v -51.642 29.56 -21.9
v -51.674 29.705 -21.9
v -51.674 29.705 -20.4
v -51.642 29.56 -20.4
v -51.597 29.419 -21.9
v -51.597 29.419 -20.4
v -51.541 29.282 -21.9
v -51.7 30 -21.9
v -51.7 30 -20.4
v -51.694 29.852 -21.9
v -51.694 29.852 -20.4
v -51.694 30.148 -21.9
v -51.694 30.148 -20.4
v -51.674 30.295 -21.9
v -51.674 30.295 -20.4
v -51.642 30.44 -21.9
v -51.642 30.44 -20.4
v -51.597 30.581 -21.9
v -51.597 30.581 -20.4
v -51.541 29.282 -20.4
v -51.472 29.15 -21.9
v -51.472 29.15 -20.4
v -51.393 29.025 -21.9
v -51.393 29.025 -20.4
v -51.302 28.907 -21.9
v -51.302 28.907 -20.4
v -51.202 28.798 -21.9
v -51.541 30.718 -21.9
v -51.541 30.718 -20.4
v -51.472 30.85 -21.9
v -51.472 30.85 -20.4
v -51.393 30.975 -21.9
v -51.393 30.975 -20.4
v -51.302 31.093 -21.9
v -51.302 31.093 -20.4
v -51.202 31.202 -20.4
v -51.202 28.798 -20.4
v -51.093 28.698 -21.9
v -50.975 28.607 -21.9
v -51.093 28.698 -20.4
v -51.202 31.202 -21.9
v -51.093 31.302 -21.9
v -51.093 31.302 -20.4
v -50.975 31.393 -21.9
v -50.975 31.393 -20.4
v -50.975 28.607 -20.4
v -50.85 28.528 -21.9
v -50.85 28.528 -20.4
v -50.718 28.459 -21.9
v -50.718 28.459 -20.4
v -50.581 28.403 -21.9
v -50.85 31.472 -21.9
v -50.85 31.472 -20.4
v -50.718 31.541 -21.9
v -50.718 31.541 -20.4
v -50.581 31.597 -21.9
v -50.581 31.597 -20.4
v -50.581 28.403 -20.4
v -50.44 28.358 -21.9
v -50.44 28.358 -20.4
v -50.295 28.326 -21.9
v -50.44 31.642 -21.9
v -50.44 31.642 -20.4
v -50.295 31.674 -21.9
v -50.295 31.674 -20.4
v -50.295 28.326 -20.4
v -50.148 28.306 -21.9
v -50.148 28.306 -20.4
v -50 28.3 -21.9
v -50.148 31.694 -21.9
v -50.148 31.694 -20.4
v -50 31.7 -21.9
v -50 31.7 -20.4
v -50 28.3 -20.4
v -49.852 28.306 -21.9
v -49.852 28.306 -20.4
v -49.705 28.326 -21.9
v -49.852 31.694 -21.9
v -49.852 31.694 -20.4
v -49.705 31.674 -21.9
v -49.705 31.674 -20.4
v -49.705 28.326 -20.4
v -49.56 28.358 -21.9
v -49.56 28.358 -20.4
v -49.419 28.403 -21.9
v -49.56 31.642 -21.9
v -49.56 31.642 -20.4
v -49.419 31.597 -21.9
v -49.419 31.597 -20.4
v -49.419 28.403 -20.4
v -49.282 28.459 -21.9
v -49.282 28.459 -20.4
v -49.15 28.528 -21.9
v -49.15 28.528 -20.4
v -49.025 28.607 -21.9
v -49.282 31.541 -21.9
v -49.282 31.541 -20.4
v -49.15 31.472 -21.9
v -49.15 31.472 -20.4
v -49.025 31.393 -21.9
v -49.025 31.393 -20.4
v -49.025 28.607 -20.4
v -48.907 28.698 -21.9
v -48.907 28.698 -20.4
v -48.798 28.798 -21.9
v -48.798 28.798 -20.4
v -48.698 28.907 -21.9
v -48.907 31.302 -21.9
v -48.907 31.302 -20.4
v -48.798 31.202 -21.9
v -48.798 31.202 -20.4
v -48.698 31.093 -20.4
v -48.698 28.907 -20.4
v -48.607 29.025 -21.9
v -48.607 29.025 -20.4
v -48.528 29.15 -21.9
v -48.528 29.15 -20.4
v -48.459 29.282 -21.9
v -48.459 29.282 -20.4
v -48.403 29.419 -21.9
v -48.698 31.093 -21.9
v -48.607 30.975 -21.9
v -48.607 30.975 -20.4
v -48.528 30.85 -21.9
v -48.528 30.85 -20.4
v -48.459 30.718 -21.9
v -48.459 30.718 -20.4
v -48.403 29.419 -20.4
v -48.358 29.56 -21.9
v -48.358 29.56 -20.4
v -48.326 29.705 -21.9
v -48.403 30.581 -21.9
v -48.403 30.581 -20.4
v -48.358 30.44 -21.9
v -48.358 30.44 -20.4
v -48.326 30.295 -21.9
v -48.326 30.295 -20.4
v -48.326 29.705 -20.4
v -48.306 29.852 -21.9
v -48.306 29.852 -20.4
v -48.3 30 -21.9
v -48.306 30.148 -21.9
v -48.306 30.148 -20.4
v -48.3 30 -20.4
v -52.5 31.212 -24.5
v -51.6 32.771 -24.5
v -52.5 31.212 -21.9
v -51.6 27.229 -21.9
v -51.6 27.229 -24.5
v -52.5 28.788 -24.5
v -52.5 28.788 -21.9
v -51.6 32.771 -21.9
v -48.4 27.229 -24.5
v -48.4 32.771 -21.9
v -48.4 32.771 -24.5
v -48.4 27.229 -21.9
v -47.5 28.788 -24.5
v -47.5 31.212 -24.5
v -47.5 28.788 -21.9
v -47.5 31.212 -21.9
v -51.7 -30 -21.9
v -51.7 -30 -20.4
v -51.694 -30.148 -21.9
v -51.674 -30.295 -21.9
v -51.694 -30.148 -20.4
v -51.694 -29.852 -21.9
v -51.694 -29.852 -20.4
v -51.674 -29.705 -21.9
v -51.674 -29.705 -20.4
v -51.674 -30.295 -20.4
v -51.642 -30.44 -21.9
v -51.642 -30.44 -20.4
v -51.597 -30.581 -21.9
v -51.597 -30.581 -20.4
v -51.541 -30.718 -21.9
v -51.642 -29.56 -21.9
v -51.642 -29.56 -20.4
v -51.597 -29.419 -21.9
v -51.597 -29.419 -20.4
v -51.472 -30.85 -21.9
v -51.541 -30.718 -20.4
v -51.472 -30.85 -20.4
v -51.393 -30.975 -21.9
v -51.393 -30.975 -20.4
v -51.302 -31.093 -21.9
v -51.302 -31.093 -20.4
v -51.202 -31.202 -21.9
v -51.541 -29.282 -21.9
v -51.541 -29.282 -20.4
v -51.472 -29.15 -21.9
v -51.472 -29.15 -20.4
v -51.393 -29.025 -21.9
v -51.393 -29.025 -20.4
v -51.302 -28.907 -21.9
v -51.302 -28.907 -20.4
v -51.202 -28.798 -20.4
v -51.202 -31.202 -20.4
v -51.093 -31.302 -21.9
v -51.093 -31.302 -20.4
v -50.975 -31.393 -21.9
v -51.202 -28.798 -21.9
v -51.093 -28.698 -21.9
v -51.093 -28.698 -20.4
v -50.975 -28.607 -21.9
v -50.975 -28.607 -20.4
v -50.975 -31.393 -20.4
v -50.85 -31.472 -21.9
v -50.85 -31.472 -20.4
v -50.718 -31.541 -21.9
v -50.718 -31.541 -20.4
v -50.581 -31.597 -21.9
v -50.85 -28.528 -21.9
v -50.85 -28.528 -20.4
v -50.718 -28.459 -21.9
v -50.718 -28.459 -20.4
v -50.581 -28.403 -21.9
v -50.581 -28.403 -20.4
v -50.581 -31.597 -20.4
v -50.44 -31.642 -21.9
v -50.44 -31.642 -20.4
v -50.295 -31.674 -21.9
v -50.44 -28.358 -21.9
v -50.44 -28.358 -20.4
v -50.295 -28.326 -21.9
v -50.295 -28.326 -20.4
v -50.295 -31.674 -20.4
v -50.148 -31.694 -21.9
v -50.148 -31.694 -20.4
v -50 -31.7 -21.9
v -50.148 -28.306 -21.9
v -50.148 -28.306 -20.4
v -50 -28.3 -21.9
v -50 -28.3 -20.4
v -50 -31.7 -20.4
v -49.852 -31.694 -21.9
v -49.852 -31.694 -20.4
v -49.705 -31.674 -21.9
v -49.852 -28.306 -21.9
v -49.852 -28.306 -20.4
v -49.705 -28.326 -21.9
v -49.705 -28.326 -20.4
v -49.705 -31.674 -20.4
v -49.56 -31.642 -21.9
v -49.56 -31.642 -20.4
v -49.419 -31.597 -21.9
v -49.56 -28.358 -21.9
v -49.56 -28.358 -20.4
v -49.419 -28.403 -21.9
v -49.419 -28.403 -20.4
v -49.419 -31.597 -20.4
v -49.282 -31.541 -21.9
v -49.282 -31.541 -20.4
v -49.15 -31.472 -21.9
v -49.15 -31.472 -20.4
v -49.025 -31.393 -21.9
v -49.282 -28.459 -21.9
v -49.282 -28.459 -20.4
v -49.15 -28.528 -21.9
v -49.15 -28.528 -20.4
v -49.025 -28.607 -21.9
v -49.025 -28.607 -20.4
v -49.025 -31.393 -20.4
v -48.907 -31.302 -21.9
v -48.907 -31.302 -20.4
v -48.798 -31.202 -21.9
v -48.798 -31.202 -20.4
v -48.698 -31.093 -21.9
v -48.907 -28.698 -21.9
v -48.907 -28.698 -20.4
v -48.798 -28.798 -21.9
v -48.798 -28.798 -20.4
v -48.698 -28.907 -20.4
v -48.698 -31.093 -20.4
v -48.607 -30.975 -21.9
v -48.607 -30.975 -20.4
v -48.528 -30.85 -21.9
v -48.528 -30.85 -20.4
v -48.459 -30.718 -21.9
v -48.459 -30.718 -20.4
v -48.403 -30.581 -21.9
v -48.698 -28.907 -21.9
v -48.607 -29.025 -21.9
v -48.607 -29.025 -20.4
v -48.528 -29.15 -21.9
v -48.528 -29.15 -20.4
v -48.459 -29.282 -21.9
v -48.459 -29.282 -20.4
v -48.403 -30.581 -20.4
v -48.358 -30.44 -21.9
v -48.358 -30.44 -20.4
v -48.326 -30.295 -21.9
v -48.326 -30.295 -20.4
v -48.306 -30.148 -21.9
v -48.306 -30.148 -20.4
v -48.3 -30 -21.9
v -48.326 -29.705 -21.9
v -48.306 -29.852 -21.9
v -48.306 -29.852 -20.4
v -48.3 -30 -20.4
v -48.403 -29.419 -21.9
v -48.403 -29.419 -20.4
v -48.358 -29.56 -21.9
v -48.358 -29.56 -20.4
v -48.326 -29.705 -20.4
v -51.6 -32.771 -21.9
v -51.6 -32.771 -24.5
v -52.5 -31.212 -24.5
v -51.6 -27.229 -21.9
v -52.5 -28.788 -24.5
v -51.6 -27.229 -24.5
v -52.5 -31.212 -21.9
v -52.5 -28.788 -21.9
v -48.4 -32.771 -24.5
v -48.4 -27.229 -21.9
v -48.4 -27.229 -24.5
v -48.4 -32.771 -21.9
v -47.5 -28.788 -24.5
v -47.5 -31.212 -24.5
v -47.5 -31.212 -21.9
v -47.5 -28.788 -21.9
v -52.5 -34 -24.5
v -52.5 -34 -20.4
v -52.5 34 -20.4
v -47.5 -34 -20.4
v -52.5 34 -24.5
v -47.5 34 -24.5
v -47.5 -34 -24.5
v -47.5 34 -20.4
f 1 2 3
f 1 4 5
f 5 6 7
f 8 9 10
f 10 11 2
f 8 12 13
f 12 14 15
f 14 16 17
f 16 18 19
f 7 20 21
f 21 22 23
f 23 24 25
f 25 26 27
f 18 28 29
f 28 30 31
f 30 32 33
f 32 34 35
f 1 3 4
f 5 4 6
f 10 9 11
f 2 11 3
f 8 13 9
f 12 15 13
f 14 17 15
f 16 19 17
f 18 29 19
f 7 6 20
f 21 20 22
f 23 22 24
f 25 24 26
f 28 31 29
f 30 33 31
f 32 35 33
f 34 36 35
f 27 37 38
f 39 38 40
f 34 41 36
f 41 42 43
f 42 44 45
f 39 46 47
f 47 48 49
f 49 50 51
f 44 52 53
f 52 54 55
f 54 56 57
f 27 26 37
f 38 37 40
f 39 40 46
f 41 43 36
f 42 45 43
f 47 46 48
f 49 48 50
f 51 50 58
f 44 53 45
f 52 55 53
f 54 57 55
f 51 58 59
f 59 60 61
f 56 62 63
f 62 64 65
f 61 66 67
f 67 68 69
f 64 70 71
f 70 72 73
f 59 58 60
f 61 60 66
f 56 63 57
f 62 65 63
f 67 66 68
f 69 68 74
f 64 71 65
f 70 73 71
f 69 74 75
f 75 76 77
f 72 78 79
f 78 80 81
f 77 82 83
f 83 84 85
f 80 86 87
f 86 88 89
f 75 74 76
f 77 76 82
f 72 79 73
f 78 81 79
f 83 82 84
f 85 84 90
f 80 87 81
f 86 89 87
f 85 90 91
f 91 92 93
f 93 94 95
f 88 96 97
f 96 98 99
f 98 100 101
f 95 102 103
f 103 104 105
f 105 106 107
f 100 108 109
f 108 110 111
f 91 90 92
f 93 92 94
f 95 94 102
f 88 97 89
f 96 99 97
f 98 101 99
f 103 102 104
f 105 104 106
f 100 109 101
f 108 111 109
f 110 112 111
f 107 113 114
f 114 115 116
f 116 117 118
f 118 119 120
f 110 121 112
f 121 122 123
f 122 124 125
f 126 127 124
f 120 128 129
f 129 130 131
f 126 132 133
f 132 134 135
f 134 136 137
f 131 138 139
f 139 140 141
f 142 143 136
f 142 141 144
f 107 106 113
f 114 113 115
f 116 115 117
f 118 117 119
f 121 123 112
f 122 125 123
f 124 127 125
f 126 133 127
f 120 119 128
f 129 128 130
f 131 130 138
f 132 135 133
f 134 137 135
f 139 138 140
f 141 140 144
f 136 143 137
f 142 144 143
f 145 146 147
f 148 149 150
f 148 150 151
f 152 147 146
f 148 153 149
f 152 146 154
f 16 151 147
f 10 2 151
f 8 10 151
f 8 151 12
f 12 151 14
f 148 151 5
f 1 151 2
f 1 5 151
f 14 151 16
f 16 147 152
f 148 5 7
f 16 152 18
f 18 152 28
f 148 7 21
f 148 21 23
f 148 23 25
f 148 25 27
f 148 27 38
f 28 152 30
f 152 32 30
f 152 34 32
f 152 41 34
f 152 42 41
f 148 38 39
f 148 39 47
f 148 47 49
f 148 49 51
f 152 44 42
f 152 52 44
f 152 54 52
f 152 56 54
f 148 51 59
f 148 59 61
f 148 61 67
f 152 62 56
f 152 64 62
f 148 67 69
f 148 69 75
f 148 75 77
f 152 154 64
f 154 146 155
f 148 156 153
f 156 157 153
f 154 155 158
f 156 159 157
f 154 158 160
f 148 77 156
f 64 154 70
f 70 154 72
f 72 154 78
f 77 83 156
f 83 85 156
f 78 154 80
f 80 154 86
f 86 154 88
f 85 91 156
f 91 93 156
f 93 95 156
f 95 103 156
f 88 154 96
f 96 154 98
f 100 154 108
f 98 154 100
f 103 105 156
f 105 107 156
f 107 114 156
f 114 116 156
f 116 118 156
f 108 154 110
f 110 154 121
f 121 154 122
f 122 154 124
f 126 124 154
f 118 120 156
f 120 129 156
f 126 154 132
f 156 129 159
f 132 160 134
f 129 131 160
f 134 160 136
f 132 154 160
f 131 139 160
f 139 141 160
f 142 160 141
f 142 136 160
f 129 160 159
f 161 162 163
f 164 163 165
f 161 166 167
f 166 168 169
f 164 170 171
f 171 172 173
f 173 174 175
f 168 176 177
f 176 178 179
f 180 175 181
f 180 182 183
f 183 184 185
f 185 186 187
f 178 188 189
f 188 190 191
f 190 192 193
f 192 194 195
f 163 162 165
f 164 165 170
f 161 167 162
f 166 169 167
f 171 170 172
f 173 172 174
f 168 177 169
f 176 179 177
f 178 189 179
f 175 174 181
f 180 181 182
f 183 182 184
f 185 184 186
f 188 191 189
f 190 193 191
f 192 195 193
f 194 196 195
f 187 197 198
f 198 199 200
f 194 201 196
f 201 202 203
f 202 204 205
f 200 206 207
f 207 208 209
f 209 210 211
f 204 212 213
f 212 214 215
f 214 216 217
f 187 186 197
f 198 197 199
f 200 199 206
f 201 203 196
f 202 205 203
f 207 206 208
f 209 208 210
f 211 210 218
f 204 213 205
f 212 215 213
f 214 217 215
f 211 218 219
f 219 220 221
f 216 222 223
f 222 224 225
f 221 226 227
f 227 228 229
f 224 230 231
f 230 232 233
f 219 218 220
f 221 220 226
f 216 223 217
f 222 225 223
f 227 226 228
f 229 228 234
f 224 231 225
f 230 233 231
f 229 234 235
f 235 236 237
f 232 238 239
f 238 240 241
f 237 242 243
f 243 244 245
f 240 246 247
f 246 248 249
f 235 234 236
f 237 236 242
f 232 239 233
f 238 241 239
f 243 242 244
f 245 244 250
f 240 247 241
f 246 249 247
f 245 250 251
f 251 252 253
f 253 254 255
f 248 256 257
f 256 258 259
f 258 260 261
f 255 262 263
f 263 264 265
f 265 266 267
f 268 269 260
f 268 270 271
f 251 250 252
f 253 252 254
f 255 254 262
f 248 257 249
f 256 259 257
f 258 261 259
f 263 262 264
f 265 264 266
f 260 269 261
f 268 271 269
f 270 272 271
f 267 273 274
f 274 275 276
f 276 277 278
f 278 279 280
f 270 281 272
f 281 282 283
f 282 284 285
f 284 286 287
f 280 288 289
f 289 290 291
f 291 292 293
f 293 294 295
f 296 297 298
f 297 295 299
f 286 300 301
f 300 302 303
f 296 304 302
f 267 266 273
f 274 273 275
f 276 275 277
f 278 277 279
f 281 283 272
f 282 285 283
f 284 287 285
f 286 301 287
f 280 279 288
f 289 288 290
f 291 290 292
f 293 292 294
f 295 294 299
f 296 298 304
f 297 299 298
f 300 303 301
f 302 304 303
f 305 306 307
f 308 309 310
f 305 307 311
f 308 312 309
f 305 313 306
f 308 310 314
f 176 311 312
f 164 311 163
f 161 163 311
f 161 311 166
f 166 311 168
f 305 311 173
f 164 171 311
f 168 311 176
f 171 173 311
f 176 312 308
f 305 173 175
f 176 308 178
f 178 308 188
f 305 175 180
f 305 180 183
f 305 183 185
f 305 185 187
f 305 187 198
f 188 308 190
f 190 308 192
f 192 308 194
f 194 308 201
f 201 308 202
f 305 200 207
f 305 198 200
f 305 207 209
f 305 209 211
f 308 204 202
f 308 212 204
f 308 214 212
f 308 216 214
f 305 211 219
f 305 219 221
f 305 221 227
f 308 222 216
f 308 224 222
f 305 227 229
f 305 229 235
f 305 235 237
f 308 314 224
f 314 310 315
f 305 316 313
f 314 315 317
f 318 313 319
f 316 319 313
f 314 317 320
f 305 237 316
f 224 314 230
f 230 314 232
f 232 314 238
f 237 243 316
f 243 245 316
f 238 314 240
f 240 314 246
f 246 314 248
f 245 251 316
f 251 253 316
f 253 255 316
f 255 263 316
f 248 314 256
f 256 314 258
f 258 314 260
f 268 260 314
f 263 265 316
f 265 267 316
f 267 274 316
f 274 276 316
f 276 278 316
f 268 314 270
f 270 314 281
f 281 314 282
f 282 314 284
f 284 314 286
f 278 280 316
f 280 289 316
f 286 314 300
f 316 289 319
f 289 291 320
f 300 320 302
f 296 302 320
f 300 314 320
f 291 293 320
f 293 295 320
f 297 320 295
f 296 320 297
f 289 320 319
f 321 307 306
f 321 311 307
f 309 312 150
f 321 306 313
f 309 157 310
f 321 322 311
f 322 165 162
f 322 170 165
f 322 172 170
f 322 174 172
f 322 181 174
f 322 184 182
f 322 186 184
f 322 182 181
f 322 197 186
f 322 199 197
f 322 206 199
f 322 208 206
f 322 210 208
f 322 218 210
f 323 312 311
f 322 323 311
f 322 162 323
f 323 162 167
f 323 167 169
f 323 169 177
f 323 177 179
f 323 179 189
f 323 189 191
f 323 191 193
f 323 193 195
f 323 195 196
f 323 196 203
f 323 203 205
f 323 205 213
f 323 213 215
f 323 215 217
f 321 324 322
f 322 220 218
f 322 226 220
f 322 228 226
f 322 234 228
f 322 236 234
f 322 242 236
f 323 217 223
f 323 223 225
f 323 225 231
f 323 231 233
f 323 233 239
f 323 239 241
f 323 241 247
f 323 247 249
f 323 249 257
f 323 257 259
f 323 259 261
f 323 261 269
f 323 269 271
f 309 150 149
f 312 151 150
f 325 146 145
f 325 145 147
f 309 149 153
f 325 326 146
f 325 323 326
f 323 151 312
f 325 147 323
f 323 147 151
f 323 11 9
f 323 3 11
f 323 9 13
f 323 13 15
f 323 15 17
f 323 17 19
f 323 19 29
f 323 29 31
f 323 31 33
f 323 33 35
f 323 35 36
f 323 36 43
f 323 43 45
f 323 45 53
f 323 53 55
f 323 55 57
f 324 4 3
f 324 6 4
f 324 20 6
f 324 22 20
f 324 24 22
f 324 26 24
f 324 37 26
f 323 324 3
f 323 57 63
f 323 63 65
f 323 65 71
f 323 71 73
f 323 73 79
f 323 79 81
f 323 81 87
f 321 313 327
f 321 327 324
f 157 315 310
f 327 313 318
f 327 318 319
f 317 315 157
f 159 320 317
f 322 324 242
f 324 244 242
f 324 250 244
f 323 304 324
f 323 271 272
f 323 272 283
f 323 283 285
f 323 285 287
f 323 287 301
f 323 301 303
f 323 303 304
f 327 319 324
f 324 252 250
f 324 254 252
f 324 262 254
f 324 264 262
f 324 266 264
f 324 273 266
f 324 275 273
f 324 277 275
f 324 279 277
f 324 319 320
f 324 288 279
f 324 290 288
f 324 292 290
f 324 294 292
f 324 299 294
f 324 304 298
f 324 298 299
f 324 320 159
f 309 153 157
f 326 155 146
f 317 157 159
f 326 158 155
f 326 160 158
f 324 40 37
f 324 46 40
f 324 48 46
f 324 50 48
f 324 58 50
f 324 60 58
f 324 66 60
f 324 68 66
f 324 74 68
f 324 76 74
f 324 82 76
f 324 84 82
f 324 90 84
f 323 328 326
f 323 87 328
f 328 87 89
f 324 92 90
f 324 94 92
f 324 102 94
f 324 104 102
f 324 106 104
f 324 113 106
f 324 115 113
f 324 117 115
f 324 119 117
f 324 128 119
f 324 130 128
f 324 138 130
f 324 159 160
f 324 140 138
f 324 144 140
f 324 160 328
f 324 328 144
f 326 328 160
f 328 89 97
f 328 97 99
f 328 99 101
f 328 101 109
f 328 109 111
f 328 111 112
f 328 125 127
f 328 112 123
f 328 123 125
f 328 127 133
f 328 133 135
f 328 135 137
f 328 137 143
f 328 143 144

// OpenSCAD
// file: ../md_params.scad
// =====================================================================
//  Microduck-look skin for the Open Duck Mini v2 skeleton
//  Shared parameters and helpers.
//  Frame: Open Duck print/robot frame, mm. +x forward, +y left, +z up.
//  Every part is modelled where it sits on the robot (zero pose).
// =====================================================================

$fn = 72;
EPS = 0.01;

// ---------- fasteners ----------
INSERT_D   = 4.0;   // hole for M3 x 5 brass heat-set insert (Amazon B0DZ8B7FW1)
INSERT_L   = 6.0;   // hole depth for that insert
M3_CLR     = 3.4;   // M3 clearance
M3_HEAD    = 6.5;   // M3 socket-head counterbore
M3_NUT     = 6.4;   // M3 nut across corners (+clearance)
M2_TAP     = 1.8;   // M2 self-tapping pilot (SG90 tab screws, servo adapter)
M25_TAP    = 2.2;   // M2.5 self-tapping pilot (Radxa)
M2_CLR     = 2.4;

// ---------- colours (for previews only) ----------
C_WHITE = [0.95, 0.94, 0.90];
C_BLACK = [0.13, 0.13, 0.14];

// ---------- helpers ----------
function lerp(a, b, t) = a + (b - a) * t;

// Section with vertical sides from zb to zc and a superellipse cap from zc to zt.
// Points are (y, z). n = 2 gives an ellipse, larger n gives a squarer top.
function se_pts(w, zb, zc, zt, n, N = 56) =
    concat(
        [[ w, zb]],
        [for (i = [0:N]) let(t = i * 180 / N, c = cos(t), s = sin(t))
            [w * sign(c) * pow(abs(c), 2 / n), zc + (zt - zc) * pow(abs(s), 2 / n)]],
        [[-w, zb]]
    );

// st = [x, half_width, z_bottom, z_curve_start, z_top, exponent]
module station(st, inset = 0, ext = 0) {
    translate([st[0], 0, 0]) rotate([90, 0, 90])
        linear_extrude(height = EPS, center = true)
            offset(delta = -inset)
                polygon(se_pts(st[1], st[2] - ext, st[3], st[4], st[5]));
}

// piecewise loft through convex stations (hull of neighbours)
module loft(sts, inset = 0, ext = 0) {
    for (i = [0:len(sts) - 2])
        hull() { station(sts[i], inset, ext); station(sts[i + 1], inset, ext); }
}

// station parameters interpolated at any x inside the list
function st_at(sts, x) =
    let(i = max([for (k = [0:len(sts) - 2]) if (sts[k][0] <= x) k]),
        a = sts[i], b = sts[i + 1], t = (x - a[0]) / (b[0] - a[0]))
    [x, lerp(a[1], b[1], t), lerp(a[2], b[2], t), lerp(a[3], b[3], t),
        lerp(a[4], b[4], t), lerp(a[5], b[5], t)];

// heat-set insert pocket: opening at origin, going along -z by default
module insert_hole(depth = INSERT_L, d = INSERT_D) {
    translate([0, 0, -depth]) cylinder(d = d, h = depth + EPS);
    translate([0, 0, -0.6]) cylinder(d1 = d, d2 = d + 0.8, h = 0.6 + EPS);   // lead-in chamfer
}

// M3 clearance with counterbore, axis +z, counterbore at the top
module m3_cb(len_total, cb_depth) {
    translate([0, 0, -EPS]) cylinder(d = M3_CLR, h = len_total + 2 * EPS);
    translate([0, 0, len_total - cb_depth]) cylinder(d = M3_HEAD, h = cb_depth + 1);
}

module rrect(x0, x1, y0, y1, r) {
    translate([x0 + r, y0 + r]) offset(r = r) square([x1 - x0 - 2 * r, y1 - y0 - 2 * r]);
}
// main file
include <../md_params.scad>
include <../md_body.scad>
deck_clamp(CLAMP_X[1]);
